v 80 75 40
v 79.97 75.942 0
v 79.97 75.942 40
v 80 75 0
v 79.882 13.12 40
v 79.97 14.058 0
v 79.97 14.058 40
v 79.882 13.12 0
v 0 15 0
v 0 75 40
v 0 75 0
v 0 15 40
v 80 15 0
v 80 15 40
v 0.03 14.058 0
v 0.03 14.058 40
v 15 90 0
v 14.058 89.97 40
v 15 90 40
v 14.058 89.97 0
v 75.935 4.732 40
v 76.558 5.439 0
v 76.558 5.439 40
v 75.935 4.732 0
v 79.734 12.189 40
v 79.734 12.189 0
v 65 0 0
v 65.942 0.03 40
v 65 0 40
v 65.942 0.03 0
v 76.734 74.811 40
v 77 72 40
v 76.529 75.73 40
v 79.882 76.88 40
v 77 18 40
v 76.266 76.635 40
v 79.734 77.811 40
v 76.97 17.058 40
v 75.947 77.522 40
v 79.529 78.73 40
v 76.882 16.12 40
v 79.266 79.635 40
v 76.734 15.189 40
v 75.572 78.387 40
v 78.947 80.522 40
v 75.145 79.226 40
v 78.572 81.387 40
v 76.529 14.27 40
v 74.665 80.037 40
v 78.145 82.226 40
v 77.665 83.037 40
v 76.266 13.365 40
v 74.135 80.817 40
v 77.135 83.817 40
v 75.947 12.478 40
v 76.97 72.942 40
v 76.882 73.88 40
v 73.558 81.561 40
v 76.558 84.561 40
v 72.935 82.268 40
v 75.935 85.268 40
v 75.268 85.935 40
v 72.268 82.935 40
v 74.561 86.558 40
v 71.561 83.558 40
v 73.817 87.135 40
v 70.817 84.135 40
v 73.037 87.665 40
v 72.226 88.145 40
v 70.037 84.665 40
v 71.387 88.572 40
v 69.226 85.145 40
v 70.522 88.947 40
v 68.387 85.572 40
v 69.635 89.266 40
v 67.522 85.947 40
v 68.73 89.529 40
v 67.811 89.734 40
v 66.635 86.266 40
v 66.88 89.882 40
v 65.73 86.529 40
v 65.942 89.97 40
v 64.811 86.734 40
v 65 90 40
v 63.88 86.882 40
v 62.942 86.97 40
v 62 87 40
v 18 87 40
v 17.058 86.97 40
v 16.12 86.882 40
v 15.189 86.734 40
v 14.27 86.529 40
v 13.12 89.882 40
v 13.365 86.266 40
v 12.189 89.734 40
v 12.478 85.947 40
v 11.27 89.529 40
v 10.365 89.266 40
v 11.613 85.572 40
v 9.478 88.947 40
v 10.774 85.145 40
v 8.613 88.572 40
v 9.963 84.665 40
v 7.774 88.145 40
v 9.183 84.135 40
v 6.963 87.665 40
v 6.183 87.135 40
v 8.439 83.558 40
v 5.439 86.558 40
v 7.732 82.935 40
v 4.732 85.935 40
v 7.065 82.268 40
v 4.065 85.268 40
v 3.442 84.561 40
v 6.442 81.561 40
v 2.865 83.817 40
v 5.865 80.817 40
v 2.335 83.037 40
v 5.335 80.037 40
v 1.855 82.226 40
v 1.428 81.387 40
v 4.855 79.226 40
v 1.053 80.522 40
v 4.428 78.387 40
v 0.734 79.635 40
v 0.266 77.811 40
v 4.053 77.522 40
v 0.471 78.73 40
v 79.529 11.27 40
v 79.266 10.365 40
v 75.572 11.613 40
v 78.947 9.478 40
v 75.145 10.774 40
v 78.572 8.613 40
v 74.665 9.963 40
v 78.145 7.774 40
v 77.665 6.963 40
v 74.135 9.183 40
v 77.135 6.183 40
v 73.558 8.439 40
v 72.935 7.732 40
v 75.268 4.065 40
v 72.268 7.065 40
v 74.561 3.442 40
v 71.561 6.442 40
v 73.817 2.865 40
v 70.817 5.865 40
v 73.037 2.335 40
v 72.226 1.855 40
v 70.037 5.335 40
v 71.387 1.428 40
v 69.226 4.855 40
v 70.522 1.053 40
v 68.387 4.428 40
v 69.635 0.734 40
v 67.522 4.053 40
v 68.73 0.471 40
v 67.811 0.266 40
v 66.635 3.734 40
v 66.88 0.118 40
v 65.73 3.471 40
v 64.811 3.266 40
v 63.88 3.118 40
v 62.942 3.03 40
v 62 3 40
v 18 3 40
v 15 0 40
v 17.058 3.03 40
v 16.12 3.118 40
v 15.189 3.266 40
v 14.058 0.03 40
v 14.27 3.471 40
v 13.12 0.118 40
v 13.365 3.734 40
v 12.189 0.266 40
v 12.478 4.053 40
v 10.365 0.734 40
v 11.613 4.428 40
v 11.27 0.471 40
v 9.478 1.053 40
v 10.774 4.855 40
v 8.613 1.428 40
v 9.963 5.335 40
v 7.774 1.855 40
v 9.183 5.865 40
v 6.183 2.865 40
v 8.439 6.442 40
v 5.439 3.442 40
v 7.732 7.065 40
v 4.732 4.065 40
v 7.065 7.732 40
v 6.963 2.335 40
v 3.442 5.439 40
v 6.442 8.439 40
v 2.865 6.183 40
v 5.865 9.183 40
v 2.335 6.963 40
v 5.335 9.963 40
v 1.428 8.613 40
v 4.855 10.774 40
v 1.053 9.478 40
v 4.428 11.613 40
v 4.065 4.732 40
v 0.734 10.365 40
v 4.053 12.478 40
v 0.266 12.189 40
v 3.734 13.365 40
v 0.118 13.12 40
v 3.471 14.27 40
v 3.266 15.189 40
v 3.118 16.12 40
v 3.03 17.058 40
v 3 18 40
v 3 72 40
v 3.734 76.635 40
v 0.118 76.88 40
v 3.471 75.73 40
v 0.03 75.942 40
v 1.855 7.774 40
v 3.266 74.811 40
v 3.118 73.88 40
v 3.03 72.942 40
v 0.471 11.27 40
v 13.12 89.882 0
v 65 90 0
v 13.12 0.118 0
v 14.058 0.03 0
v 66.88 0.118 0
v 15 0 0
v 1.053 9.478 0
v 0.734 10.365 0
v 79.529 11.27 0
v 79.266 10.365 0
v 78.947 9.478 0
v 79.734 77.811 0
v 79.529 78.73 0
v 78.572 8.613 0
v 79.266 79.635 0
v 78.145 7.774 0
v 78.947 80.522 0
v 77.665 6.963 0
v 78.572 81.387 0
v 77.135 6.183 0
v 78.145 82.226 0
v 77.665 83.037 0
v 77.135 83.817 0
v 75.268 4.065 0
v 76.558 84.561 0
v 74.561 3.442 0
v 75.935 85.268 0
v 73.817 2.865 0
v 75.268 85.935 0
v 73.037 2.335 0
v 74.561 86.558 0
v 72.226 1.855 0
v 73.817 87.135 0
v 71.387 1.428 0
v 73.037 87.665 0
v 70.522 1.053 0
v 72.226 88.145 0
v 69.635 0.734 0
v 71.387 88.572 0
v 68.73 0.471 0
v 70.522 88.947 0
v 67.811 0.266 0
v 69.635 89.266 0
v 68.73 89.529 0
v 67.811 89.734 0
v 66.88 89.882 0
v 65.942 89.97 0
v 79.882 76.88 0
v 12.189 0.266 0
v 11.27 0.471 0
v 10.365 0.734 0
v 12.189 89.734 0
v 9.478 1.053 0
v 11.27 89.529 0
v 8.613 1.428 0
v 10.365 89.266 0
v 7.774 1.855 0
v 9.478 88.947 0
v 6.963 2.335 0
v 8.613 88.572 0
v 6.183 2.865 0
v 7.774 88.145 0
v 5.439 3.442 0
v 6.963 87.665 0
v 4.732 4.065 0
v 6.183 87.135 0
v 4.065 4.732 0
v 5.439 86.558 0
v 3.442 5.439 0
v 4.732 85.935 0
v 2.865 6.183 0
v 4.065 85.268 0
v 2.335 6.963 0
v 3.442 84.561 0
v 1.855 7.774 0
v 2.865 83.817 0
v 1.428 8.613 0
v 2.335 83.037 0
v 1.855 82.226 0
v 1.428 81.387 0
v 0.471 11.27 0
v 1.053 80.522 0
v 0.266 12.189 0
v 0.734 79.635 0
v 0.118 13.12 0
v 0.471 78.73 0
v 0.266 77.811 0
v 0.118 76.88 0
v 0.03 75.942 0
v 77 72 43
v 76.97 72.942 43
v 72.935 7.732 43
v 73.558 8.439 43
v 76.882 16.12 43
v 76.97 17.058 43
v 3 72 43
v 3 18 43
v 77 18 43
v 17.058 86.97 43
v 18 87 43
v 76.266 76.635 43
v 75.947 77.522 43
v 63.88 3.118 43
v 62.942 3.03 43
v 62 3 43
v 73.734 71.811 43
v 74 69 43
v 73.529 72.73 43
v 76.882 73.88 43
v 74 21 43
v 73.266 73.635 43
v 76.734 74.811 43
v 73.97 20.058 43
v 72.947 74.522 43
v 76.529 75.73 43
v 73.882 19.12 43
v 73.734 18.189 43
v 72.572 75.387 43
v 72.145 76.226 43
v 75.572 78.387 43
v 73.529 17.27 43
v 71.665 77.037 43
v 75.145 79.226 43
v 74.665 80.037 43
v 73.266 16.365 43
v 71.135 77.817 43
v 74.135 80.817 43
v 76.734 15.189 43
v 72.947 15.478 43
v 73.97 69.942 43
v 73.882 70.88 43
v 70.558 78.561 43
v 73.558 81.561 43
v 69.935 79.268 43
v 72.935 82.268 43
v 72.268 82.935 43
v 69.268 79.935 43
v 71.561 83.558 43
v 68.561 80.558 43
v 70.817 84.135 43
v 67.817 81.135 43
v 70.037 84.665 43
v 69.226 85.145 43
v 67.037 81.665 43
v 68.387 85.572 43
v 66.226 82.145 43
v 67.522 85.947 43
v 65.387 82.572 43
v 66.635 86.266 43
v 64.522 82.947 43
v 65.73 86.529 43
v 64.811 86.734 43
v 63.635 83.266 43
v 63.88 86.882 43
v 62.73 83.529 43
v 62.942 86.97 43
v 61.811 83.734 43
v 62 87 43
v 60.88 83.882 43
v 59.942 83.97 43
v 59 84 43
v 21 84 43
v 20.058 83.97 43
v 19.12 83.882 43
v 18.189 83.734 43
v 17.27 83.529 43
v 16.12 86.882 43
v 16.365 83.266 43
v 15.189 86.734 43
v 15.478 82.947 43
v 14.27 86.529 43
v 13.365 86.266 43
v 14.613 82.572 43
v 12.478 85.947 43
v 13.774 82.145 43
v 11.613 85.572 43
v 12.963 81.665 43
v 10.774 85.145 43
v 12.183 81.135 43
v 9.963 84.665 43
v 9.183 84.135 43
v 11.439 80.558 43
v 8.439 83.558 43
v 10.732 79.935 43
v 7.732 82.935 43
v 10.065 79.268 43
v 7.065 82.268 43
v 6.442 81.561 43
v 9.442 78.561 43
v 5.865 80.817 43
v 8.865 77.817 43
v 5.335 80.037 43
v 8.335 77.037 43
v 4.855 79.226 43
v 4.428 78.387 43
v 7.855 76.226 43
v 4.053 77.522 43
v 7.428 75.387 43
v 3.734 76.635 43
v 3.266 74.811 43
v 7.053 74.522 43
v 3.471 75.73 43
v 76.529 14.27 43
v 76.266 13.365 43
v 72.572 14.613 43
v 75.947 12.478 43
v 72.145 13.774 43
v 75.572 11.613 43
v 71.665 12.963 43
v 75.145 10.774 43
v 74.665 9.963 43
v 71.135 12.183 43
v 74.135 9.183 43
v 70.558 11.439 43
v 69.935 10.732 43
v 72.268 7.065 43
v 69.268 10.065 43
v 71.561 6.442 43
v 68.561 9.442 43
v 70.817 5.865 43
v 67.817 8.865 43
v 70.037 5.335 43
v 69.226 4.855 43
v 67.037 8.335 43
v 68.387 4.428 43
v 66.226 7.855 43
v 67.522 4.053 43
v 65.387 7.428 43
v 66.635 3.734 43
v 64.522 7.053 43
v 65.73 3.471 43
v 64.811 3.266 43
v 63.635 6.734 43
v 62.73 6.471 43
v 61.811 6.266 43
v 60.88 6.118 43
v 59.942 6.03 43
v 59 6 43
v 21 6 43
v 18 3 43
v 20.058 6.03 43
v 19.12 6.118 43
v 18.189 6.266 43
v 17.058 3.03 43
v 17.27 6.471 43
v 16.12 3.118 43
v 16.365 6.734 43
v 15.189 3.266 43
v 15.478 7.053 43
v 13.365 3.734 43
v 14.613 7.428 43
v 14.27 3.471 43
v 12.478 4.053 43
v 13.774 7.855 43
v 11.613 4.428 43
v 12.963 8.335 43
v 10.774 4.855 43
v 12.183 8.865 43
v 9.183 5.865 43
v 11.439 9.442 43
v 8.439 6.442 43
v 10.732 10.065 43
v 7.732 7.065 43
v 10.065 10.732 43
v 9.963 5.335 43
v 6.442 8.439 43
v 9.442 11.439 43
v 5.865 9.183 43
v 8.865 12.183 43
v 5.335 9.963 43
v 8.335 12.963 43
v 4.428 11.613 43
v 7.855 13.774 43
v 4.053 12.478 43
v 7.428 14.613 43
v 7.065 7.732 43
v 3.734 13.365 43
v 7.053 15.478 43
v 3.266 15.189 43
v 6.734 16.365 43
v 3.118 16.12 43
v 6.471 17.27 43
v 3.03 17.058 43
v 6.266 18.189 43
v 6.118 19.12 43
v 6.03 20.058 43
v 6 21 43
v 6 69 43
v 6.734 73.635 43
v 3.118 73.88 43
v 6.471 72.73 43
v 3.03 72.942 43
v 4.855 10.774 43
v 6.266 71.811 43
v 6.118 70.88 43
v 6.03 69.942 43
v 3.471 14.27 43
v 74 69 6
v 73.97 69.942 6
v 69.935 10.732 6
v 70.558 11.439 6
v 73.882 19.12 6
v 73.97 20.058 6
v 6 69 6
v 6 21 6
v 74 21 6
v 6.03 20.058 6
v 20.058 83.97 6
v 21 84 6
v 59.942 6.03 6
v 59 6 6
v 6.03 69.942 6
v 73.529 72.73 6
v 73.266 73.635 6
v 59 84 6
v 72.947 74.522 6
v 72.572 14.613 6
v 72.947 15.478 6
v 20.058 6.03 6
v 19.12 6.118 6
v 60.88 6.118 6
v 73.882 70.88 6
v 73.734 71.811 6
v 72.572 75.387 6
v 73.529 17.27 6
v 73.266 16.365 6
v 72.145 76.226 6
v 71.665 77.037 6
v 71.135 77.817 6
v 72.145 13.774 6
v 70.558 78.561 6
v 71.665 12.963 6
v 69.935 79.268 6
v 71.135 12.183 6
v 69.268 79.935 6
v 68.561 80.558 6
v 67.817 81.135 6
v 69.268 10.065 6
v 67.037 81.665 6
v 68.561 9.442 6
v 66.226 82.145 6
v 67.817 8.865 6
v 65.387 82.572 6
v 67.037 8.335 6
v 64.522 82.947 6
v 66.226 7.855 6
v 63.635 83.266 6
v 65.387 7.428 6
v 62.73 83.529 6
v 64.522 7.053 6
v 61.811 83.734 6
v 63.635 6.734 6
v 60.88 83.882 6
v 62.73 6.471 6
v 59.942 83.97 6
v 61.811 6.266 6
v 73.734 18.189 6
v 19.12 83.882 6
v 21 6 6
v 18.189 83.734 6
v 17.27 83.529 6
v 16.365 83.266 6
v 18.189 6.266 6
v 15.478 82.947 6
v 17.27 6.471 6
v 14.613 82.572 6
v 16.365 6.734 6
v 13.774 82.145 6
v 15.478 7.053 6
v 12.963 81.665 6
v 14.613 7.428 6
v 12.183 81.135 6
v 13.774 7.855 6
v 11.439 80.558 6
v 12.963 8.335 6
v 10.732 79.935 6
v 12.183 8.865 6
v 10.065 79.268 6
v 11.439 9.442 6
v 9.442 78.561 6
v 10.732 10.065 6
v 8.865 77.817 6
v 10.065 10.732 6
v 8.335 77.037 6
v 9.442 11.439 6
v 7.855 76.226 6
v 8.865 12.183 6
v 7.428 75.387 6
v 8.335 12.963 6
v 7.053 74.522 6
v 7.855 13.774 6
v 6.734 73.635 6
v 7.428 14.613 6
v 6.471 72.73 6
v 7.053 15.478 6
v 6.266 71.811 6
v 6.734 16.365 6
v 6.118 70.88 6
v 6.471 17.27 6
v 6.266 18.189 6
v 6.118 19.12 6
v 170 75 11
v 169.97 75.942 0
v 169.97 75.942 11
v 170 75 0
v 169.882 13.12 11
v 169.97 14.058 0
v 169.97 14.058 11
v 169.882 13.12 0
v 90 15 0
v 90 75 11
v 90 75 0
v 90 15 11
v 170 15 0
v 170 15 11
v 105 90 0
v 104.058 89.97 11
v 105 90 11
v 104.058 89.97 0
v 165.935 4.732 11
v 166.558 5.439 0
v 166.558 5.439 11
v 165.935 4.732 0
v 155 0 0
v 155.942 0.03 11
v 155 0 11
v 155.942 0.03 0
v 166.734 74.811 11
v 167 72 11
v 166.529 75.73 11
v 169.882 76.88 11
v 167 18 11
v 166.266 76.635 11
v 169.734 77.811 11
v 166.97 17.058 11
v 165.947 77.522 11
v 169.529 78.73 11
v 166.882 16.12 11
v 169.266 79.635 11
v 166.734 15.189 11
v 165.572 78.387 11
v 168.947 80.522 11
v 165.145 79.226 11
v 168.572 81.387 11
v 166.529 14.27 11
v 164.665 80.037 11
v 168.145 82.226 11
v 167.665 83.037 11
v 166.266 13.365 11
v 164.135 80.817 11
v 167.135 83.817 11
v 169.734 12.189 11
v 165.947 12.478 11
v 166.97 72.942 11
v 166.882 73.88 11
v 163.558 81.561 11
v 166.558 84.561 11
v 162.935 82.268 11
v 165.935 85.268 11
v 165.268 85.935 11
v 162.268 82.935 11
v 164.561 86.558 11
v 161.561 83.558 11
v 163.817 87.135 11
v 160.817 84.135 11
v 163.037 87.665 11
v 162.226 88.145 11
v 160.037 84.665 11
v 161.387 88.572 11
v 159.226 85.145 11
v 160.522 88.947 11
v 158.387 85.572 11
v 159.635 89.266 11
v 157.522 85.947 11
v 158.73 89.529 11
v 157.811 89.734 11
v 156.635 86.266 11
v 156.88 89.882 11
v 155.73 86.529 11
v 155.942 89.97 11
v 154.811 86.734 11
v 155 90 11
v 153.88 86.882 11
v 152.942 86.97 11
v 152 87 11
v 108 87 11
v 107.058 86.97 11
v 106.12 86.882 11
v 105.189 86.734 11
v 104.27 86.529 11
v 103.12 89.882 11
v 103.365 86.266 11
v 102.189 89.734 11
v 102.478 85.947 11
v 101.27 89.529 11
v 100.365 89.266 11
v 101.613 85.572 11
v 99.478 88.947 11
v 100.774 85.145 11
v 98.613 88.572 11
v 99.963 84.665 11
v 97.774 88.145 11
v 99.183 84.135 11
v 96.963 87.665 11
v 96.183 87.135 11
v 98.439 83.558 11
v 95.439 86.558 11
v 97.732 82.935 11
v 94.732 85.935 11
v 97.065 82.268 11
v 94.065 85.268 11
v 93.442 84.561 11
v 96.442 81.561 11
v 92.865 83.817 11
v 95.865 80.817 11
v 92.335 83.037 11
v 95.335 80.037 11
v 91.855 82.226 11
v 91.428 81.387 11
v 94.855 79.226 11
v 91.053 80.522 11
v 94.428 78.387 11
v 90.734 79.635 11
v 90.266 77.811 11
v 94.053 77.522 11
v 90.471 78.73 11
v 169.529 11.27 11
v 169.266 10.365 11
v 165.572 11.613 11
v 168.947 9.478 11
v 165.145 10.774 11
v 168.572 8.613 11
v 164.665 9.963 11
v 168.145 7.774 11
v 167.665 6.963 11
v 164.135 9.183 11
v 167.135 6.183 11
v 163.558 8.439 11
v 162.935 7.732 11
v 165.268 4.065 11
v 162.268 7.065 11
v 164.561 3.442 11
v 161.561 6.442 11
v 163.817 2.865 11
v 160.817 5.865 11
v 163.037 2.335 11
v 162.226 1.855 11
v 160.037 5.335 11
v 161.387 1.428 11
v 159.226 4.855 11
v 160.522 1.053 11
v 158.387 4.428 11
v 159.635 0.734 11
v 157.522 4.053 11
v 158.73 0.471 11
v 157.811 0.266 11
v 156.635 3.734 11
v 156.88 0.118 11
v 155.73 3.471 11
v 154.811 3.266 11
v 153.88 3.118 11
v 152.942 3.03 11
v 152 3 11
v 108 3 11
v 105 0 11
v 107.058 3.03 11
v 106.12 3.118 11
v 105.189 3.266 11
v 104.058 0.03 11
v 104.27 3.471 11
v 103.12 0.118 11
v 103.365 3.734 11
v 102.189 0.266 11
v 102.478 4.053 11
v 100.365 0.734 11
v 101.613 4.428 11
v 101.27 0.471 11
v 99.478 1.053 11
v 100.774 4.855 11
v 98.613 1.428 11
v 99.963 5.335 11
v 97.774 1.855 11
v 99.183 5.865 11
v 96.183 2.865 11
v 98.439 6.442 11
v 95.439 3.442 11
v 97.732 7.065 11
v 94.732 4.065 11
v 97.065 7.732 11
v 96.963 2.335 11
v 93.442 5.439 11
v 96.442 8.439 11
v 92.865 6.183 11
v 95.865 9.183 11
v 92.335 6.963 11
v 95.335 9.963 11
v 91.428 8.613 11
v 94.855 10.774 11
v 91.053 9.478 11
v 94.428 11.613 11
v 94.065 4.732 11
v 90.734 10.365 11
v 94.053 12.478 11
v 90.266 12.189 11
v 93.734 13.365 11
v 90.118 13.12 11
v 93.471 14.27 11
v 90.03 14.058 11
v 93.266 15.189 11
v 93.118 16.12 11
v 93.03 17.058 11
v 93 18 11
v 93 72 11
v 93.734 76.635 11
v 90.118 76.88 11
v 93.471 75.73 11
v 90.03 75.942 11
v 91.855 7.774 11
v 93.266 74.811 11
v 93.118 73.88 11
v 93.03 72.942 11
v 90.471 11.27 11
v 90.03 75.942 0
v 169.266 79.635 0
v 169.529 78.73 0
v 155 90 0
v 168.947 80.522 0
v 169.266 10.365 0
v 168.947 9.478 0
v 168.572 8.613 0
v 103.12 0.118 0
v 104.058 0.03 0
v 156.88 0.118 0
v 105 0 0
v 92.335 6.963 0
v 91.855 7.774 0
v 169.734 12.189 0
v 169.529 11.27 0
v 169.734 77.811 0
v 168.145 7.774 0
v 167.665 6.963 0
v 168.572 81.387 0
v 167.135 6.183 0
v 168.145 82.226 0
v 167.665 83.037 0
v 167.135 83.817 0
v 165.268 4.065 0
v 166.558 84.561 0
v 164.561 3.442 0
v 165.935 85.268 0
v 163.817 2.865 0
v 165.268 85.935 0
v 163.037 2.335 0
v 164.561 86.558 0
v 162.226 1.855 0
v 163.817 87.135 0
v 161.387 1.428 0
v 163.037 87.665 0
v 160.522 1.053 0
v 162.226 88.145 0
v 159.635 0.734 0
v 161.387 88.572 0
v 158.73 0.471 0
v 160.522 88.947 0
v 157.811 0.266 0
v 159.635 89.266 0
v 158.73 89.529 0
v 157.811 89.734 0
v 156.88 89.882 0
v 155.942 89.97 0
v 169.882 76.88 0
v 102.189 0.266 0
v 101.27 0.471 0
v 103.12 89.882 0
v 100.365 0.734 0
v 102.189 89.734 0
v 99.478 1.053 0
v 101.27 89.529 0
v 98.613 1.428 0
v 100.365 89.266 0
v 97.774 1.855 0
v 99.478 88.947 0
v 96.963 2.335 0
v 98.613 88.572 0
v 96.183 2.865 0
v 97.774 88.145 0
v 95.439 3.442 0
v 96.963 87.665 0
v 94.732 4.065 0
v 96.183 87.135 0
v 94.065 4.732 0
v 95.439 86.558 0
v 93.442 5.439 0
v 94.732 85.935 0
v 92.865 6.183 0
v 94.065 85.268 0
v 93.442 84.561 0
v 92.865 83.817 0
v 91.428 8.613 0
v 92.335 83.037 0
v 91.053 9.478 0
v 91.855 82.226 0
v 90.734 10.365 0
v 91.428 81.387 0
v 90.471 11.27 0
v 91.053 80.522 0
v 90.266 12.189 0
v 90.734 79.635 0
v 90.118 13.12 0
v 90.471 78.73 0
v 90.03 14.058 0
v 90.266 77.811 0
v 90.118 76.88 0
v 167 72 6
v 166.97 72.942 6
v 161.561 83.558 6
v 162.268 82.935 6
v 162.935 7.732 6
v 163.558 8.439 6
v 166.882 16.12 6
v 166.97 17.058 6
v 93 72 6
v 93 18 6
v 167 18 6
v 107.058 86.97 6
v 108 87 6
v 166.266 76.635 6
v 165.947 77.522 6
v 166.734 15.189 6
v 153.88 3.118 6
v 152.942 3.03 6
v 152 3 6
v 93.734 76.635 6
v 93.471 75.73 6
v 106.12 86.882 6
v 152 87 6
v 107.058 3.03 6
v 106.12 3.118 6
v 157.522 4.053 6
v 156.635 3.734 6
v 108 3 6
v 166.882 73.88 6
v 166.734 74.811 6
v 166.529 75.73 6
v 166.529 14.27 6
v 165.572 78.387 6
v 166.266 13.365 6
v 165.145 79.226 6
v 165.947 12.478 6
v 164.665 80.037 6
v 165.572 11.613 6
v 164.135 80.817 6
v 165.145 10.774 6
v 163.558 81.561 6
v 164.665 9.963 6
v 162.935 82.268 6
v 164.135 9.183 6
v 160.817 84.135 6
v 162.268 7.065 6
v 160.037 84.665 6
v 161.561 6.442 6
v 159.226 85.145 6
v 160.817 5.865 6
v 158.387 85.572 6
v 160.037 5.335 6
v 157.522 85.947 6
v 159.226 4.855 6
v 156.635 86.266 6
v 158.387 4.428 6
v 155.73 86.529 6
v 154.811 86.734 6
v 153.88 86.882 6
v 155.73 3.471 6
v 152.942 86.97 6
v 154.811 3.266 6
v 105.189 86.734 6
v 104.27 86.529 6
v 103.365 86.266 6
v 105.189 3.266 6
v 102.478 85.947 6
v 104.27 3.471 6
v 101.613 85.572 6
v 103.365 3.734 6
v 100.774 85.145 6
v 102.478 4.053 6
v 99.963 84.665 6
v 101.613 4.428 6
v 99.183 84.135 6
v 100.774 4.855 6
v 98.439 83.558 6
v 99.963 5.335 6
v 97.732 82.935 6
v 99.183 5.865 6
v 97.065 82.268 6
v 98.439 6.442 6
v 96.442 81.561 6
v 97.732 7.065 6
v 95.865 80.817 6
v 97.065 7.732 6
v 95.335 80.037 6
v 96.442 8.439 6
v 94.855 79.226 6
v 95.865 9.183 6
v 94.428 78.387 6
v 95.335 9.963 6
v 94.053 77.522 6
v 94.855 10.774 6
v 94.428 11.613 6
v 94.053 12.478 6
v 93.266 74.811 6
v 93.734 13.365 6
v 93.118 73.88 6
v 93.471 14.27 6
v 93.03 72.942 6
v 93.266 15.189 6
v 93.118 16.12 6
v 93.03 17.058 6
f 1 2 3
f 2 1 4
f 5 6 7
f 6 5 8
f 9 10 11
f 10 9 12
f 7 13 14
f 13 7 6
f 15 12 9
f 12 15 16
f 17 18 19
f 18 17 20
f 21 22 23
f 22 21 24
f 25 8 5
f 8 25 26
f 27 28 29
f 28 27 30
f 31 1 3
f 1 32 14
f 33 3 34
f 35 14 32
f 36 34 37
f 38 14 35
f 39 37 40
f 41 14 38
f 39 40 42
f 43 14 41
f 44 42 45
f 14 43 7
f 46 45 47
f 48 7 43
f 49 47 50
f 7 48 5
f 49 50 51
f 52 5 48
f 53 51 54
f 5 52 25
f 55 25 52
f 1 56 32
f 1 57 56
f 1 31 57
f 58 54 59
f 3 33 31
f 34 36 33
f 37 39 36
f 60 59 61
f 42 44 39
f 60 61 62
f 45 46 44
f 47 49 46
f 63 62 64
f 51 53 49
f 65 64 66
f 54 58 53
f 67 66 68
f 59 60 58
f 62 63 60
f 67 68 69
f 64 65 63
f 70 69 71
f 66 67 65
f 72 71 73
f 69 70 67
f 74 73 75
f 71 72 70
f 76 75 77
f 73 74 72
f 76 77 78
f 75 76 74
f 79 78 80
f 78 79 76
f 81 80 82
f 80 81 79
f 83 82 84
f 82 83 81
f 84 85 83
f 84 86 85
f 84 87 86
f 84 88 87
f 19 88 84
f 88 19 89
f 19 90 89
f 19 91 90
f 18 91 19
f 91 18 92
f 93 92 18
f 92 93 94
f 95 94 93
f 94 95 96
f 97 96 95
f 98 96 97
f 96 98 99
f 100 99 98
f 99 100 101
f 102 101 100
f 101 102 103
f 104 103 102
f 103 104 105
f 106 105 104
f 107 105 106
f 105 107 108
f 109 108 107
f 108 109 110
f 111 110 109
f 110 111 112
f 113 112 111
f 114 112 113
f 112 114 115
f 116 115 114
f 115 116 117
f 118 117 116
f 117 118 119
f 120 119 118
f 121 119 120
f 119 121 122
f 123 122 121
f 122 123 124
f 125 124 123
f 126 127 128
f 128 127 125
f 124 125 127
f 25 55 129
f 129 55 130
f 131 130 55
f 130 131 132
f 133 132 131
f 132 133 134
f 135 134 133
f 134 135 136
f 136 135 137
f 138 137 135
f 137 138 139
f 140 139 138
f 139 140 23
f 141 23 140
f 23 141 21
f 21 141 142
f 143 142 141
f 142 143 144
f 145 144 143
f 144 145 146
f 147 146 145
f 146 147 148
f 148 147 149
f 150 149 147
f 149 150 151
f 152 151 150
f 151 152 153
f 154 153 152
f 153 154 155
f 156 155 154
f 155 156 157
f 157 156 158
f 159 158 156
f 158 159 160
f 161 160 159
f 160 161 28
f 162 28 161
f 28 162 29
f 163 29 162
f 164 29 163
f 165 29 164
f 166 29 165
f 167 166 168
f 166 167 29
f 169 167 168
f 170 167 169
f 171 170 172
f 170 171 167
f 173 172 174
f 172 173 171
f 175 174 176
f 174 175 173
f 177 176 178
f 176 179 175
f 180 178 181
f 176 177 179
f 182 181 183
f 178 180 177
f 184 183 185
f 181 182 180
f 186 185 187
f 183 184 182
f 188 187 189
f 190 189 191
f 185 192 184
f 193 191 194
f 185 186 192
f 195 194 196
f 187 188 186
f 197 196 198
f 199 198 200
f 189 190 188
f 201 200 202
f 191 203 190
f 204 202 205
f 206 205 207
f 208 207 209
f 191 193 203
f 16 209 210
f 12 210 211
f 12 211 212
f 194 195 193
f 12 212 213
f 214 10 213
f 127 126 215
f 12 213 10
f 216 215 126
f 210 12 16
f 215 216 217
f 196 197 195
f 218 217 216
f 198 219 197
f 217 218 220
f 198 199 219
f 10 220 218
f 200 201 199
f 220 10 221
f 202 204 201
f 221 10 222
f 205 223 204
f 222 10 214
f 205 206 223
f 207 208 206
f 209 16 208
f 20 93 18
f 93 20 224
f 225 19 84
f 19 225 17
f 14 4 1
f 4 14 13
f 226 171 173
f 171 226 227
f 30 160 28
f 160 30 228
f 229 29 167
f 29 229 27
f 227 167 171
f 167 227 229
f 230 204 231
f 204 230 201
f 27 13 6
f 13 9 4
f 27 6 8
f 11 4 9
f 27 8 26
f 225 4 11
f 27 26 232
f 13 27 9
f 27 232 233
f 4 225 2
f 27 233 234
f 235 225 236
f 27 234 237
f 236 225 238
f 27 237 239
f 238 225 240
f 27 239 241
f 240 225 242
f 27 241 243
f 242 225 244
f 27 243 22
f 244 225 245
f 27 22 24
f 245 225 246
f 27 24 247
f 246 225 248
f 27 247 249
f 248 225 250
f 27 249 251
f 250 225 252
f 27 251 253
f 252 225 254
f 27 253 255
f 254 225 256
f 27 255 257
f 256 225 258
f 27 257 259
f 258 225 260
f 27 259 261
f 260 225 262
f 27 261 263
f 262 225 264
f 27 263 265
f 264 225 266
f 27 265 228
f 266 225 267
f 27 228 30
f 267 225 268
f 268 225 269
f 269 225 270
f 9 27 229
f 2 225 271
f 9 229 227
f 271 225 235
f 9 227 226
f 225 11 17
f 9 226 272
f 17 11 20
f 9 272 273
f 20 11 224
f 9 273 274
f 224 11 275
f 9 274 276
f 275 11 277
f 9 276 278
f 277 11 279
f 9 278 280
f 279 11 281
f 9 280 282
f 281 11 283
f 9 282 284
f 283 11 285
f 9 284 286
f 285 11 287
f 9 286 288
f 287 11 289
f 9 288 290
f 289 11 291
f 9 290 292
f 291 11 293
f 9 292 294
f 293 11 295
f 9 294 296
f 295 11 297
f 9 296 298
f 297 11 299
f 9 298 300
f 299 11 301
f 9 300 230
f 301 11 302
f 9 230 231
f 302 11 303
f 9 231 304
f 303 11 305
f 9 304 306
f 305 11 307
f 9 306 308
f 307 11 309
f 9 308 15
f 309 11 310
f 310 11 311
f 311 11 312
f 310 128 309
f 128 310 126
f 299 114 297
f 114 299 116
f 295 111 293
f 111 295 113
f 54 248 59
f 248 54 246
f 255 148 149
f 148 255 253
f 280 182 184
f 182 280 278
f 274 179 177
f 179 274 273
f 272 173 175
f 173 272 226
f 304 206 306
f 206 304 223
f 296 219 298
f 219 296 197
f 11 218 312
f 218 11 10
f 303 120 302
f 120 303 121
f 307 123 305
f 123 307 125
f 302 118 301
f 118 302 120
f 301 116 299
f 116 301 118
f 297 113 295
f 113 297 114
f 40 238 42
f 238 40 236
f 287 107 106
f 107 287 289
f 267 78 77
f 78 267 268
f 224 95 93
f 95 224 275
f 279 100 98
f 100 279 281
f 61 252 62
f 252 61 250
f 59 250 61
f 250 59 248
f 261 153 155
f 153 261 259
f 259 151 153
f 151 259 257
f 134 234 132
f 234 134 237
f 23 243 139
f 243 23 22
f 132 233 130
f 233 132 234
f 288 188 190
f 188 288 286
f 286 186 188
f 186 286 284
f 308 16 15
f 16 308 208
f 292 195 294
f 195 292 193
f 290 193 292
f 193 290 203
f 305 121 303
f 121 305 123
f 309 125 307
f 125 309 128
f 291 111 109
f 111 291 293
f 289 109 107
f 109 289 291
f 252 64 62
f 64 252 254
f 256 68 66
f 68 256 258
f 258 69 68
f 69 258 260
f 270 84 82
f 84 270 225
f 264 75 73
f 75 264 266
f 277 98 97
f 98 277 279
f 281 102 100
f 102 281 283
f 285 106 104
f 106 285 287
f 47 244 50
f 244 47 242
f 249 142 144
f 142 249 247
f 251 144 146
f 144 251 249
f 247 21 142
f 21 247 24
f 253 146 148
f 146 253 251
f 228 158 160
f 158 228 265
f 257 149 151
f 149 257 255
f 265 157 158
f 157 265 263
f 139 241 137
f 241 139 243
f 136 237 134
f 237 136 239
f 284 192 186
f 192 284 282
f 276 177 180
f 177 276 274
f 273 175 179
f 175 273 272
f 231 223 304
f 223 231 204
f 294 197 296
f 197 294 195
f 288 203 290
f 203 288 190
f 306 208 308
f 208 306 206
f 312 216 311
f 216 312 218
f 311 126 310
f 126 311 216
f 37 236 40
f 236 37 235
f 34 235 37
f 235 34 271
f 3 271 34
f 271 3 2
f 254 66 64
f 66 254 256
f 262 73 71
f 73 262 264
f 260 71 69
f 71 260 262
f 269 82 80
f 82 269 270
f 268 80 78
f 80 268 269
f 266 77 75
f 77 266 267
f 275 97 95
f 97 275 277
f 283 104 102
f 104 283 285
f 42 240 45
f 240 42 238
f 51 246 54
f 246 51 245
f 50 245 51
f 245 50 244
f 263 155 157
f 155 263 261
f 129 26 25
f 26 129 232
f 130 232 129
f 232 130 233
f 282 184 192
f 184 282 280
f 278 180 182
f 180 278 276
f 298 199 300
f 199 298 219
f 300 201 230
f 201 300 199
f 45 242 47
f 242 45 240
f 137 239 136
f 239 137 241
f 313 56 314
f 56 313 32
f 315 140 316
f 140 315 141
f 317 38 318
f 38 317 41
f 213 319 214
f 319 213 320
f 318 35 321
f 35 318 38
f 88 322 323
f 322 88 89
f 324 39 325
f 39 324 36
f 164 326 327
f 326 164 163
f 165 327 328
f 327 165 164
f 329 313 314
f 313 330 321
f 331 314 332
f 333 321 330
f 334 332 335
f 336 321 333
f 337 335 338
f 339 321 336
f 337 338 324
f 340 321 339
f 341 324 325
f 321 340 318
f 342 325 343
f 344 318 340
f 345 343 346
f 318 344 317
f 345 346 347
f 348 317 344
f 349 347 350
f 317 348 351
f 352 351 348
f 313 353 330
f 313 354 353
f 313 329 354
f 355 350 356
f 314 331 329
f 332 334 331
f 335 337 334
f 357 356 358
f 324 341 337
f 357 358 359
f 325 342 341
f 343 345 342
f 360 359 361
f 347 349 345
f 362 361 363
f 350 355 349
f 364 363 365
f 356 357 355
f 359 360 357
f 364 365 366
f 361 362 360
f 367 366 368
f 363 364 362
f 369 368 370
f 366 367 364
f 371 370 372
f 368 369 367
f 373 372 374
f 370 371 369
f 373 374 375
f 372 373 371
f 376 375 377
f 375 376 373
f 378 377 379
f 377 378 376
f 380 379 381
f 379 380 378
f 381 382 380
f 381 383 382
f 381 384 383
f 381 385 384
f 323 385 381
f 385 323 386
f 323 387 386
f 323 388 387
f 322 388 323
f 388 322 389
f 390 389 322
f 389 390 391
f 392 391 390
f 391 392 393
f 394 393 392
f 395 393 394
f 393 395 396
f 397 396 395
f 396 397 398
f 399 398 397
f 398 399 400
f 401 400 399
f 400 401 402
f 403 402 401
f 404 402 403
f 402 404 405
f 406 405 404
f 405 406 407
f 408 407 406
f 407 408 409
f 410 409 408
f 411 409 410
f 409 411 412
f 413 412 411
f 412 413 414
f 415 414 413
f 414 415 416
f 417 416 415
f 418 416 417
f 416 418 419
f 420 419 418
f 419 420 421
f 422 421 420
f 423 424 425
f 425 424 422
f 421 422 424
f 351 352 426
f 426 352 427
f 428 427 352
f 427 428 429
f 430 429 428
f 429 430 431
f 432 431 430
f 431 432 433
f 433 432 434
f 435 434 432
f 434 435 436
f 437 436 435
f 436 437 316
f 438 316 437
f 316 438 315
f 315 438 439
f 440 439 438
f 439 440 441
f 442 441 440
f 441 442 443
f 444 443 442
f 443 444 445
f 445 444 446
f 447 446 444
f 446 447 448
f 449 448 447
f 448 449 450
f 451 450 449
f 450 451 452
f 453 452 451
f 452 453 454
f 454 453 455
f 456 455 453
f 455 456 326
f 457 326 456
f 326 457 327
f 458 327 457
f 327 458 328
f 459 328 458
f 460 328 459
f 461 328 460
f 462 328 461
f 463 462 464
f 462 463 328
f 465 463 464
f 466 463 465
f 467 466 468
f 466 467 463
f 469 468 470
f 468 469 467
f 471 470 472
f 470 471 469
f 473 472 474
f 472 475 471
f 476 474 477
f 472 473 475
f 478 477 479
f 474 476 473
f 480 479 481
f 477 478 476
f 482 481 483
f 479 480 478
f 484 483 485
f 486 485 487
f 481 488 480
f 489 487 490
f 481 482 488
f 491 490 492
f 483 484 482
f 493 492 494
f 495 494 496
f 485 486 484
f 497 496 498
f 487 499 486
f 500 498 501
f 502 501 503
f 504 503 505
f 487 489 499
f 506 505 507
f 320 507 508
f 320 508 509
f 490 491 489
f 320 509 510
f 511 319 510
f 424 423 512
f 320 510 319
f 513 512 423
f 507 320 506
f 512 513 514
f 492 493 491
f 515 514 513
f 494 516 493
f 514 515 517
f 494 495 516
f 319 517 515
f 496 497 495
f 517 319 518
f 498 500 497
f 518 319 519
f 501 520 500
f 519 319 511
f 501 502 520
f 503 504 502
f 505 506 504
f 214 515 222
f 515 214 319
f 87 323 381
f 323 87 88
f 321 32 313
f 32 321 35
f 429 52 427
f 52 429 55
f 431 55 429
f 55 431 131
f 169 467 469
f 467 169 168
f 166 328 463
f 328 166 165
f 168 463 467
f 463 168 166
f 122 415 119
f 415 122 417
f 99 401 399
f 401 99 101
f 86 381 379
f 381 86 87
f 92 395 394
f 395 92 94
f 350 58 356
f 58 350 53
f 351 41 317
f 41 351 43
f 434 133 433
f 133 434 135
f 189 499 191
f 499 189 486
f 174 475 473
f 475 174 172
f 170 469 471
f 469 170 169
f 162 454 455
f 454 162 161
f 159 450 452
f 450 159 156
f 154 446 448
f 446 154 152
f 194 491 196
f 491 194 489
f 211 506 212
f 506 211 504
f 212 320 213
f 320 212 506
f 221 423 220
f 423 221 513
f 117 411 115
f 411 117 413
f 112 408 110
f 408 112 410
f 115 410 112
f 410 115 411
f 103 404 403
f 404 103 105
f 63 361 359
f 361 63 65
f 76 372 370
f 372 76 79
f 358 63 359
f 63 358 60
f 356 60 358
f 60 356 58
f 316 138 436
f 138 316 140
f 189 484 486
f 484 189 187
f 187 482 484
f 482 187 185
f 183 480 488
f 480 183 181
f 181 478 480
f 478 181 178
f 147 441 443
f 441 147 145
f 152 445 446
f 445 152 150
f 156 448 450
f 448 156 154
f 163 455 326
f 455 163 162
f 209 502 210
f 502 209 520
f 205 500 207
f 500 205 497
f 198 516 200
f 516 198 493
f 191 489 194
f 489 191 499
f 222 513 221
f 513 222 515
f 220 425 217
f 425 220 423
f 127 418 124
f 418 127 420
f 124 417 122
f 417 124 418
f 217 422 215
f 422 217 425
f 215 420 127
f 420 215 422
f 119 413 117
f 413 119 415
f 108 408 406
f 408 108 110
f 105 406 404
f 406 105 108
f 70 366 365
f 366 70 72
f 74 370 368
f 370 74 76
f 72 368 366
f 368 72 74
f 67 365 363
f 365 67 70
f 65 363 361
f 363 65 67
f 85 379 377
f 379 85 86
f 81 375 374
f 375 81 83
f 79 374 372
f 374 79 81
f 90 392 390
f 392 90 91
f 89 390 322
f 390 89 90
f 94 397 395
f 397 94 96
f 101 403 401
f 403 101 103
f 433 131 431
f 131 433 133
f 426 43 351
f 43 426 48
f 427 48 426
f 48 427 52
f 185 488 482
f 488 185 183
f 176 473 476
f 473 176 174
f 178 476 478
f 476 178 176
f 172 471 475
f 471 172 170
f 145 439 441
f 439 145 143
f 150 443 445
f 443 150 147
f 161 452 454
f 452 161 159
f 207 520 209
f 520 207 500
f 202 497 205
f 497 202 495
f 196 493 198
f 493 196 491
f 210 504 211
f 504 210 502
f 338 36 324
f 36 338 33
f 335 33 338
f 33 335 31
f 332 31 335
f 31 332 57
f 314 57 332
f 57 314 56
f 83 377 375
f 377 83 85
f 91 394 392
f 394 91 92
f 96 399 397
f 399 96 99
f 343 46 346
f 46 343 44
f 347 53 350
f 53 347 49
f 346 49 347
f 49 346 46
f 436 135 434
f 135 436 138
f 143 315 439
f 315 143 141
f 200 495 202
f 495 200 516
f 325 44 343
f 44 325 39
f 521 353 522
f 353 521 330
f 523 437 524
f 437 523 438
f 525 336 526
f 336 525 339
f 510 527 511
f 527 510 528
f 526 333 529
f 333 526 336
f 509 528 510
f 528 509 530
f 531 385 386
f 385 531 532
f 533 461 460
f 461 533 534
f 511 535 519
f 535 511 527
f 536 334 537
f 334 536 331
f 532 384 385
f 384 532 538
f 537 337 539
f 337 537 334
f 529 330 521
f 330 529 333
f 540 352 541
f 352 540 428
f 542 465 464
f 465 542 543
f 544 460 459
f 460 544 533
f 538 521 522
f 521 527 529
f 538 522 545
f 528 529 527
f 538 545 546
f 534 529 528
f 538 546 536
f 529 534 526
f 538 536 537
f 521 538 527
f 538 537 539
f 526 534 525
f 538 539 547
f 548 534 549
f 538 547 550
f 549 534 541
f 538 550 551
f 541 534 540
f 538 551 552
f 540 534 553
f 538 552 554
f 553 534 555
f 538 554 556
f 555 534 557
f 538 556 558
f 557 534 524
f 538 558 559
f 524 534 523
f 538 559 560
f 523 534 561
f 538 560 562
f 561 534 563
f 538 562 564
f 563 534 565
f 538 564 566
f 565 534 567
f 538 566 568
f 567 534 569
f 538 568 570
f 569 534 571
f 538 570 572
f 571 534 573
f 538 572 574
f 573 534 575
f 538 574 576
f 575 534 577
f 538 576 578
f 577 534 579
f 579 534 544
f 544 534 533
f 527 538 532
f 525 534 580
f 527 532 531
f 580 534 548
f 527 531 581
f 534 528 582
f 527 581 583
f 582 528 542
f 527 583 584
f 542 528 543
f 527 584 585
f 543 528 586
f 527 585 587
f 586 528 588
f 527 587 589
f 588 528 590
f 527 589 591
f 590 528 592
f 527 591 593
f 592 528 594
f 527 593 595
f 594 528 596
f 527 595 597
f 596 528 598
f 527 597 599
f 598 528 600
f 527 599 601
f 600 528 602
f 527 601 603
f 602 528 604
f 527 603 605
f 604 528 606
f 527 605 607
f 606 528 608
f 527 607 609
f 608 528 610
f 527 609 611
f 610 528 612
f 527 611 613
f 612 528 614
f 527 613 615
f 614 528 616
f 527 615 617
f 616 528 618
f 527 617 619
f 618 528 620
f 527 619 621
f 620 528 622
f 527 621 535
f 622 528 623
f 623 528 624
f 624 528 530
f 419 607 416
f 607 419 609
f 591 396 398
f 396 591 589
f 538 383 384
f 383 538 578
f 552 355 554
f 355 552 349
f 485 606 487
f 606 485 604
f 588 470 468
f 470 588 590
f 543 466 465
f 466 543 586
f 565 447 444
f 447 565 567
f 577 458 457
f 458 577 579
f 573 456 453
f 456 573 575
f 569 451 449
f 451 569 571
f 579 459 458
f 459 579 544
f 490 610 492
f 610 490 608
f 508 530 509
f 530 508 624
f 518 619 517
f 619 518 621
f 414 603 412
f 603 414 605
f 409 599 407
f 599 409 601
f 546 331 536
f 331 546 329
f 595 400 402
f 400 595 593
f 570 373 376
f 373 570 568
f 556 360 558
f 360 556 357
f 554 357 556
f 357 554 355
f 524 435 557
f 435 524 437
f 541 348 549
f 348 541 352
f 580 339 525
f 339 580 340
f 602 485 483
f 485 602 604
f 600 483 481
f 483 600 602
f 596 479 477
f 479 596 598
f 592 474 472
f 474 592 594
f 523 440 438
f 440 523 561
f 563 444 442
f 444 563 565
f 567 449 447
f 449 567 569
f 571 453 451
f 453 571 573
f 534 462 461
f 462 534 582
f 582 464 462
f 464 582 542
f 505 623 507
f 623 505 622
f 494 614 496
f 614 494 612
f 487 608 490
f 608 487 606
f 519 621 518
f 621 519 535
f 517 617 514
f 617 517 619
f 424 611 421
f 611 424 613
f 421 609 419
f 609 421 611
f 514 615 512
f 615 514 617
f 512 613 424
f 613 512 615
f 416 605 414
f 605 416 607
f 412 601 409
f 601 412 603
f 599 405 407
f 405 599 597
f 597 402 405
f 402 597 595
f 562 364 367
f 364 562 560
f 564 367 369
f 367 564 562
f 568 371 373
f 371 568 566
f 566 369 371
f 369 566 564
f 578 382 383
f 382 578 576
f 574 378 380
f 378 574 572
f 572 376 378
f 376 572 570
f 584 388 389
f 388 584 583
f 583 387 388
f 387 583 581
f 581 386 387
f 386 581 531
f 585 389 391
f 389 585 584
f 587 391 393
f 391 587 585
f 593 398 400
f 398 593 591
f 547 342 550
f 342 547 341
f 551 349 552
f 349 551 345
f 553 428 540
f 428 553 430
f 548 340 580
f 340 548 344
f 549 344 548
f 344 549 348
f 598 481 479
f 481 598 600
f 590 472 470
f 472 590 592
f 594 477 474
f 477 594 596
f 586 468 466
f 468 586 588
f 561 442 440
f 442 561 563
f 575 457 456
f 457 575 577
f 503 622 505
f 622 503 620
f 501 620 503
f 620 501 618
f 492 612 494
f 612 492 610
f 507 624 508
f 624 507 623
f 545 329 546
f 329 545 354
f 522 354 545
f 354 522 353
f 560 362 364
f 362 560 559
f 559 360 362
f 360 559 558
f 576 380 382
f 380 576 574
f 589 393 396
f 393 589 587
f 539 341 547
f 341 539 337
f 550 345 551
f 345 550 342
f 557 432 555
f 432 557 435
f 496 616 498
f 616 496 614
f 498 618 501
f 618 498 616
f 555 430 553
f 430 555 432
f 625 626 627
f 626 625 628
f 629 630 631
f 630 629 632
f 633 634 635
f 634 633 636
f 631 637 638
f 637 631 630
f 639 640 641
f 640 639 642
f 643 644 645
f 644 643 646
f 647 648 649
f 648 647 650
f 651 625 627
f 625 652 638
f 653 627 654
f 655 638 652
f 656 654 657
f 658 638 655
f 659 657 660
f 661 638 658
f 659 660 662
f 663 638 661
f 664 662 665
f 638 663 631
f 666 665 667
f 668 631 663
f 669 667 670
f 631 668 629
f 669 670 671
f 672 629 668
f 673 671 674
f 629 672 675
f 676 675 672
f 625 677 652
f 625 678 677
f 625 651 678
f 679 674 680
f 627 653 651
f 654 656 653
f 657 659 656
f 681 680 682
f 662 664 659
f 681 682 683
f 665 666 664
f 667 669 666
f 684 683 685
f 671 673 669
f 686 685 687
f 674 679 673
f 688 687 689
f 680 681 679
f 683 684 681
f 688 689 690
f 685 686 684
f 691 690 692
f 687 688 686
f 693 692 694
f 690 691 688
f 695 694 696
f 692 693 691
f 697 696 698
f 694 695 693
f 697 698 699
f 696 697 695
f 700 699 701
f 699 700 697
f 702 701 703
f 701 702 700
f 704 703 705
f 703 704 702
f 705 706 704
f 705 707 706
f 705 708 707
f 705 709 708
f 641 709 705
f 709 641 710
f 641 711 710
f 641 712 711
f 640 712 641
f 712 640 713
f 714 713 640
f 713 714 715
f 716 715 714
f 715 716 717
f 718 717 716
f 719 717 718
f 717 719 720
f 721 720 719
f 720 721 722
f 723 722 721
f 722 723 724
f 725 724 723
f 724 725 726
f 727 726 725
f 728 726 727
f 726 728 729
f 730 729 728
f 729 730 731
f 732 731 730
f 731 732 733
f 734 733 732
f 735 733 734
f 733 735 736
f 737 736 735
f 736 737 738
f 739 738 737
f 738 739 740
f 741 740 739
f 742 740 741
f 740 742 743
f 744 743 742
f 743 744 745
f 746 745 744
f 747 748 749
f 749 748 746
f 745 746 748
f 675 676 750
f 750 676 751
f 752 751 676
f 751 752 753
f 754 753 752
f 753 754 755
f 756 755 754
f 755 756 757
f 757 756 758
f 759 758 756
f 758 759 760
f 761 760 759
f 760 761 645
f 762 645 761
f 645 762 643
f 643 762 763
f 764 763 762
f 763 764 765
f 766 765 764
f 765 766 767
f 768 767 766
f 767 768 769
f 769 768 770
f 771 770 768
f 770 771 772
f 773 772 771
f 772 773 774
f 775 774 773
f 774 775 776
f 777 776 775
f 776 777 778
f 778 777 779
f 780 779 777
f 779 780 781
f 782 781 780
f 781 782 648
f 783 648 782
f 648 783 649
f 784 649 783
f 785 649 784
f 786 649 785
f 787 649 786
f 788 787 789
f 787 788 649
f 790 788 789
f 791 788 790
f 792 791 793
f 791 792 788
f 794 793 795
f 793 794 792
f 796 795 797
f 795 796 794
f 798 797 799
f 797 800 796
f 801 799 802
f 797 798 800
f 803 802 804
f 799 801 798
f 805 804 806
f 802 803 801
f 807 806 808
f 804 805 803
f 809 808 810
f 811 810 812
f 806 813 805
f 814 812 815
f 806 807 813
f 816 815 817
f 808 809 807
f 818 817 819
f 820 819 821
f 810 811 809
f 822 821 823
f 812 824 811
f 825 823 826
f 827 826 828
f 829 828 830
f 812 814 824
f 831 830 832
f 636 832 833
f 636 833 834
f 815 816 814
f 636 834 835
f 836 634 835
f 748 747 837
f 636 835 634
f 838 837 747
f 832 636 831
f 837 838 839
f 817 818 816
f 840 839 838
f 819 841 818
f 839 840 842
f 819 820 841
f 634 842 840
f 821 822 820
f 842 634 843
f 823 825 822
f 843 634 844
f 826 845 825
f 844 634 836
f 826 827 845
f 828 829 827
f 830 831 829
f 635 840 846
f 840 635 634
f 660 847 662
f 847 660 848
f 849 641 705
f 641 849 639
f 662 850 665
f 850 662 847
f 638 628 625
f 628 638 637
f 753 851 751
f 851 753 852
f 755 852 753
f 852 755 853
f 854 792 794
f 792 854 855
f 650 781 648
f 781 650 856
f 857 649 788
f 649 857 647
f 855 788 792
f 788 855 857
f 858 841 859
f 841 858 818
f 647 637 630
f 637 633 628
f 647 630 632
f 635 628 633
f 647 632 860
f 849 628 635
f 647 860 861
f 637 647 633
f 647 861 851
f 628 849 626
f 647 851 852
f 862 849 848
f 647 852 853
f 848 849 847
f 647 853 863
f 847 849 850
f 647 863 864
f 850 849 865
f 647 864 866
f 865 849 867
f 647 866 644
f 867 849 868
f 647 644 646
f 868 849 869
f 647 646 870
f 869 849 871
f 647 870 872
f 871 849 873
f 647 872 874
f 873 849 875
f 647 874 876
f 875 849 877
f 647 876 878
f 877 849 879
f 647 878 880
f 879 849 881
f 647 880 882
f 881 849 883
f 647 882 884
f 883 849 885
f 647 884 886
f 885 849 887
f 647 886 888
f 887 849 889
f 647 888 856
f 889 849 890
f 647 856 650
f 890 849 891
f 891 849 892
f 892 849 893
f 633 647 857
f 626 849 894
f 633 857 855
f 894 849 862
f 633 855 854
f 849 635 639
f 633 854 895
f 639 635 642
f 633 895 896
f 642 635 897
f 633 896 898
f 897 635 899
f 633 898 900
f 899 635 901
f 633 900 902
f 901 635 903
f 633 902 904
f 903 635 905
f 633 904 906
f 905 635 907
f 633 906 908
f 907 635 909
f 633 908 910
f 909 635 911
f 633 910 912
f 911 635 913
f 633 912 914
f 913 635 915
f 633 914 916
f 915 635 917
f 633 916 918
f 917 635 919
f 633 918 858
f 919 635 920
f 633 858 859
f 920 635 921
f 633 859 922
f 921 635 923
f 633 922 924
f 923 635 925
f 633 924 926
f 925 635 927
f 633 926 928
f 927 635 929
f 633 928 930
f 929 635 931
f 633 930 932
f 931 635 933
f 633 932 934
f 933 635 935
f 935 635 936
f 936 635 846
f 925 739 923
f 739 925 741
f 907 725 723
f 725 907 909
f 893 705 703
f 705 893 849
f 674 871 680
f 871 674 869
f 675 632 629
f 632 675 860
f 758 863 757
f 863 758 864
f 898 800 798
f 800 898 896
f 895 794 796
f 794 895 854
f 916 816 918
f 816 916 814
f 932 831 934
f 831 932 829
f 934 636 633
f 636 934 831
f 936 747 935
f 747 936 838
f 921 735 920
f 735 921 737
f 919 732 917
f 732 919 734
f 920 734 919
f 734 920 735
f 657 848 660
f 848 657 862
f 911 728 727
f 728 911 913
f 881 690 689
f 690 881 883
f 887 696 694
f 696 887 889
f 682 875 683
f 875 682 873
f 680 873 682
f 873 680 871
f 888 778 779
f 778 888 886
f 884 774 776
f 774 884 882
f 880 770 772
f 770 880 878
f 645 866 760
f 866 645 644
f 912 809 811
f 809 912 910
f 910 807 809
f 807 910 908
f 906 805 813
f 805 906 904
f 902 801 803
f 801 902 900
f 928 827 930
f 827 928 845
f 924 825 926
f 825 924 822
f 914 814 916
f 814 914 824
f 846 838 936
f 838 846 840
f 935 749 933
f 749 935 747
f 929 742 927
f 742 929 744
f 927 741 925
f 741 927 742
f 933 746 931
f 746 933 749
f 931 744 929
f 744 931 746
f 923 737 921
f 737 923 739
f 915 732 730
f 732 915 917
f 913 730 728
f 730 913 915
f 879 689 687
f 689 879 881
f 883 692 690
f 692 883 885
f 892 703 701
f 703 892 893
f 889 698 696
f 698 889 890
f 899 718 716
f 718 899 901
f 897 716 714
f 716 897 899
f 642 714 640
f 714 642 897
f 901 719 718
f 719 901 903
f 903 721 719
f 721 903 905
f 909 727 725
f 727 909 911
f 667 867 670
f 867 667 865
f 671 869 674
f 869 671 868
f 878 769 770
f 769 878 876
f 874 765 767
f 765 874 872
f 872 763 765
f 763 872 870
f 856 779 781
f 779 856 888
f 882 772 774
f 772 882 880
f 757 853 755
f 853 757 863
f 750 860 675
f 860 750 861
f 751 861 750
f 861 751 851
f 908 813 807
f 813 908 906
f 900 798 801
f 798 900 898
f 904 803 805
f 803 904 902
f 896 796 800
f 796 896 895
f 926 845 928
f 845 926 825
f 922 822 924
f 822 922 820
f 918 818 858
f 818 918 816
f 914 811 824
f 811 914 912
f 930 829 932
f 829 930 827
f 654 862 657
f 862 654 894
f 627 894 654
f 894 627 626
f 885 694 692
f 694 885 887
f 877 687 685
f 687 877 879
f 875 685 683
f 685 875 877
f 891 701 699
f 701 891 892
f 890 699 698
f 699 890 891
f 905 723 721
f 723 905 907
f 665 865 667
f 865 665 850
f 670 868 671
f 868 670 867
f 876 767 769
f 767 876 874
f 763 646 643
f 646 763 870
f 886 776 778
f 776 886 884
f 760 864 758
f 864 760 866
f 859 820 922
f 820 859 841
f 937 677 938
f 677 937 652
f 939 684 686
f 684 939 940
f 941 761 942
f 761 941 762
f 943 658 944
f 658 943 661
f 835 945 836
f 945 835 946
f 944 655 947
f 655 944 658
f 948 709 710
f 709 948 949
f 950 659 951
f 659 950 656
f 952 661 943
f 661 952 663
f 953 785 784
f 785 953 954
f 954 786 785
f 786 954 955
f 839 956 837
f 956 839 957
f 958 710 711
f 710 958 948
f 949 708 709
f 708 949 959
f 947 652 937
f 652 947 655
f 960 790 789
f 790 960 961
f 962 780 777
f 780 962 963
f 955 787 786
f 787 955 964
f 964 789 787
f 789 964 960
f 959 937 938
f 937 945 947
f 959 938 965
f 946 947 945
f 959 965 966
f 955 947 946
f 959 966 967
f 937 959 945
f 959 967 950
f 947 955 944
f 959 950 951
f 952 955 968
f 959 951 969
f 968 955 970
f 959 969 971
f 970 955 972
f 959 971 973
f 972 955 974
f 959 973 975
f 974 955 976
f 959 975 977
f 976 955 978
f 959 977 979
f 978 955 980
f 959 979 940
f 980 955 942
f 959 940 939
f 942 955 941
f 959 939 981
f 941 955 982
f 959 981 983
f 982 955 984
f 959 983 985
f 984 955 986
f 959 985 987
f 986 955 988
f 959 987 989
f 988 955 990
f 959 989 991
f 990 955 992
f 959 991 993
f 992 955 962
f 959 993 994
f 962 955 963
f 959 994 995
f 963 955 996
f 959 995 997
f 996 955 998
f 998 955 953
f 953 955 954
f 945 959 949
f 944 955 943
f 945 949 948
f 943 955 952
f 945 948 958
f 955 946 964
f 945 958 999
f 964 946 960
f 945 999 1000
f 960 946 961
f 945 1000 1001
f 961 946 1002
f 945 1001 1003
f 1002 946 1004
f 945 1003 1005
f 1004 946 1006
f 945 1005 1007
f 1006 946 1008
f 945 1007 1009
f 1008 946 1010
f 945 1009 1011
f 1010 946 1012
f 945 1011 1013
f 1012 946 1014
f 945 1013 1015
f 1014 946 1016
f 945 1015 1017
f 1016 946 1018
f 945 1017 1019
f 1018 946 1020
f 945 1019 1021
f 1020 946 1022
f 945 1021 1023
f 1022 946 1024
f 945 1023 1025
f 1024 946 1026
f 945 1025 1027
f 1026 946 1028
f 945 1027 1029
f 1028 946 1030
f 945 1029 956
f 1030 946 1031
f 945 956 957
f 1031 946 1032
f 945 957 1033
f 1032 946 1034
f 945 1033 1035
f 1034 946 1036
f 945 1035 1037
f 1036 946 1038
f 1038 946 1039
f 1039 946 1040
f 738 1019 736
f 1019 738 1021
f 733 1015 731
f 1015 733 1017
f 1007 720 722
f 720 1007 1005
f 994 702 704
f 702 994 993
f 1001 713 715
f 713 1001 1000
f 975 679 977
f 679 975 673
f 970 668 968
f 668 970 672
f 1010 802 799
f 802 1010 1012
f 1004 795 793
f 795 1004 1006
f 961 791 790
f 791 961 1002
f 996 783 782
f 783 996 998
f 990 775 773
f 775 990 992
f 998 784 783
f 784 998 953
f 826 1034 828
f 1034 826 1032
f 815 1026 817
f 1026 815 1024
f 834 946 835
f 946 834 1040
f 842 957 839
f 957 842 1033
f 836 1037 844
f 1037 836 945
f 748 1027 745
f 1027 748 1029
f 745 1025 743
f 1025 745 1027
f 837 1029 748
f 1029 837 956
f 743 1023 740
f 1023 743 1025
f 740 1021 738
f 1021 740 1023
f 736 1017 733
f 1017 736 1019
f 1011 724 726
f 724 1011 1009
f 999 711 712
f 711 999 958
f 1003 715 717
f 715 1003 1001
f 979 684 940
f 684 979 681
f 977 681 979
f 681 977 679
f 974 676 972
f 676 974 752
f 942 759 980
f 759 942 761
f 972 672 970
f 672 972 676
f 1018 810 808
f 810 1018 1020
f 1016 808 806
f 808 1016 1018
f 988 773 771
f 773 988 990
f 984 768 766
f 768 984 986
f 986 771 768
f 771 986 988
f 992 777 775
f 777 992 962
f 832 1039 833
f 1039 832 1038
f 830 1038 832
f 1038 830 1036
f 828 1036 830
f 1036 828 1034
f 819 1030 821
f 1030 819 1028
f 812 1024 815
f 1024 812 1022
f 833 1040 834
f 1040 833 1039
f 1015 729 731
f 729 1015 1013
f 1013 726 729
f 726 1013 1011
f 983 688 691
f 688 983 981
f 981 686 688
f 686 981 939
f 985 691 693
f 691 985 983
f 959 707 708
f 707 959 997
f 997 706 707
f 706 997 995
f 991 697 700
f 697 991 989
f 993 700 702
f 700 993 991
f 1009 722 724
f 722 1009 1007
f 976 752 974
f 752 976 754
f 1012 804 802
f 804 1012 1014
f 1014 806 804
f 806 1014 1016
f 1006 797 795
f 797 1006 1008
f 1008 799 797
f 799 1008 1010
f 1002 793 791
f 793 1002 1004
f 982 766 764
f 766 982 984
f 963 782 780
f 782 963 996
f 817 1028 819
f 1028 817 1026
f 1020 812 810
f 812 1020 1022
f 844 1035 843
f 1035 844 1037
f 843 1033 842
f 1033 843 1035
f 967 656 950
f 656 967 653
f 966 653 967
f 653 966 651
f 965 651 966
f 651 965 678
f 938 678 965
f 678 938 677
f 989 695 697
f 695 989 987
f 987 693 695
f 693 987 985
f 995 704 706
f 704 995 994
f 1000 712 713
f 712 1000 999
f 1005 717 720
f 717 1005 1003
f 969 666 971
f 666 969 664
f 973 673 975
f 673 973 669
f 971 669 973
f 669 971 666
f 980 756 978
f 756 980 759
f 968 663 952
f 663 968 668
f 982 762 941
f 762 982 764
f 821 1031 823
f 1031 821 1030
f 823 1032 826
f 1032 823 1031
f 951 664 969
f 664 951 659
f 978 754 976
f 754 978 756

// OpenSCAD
box(15,40,80,90);

lidthickness = 3;
wallthickness = 3+lidthickness;





module form(radius,height,width,length){
hull(){
    //First cyleinder
translate([radius,radius,0])
    cylinder(r=radius,h=height,$fn=100);
    
//2nd x
translate([width-radius,radius,0])
    cylinder(r=radius,h=height,$fn=100);
//2nd y  
translate([radius,length-radius,0])
    cylinder(r=radius,h=height,$fn=100);  
    
//XY
translate([width-radius,length-radius,0])
    cylinder(r=radius,h=height,$fn=100);  
}
};



module box(cornor,height,width,length){    
difference(){
    union(){
        //OuterForm
        form(cornor,height,width,length);
        //inderForm
        translate([lidthickness,lidthickness,0])
        form(cornor,height+3,width-lidthickness*2, length-lidthickness*2);
}
    
//Cutout
translate([wallthickness,wallthickness,wallthickness])
    form(cornor,height+wallthickness,width-wallthickness*2,length-wallthickness*2); 
   
}
    
//Lid
difference(){    
translate([width+10,0,0])
    form(cornor,wallthickness+5,width,length);
    
translate([width+10+lidthickness,lidthickness,wallthickness])
    form(cornor,wallthickness+5,width-lidthickness*2,length-lidthickness*2);
    
}
};
